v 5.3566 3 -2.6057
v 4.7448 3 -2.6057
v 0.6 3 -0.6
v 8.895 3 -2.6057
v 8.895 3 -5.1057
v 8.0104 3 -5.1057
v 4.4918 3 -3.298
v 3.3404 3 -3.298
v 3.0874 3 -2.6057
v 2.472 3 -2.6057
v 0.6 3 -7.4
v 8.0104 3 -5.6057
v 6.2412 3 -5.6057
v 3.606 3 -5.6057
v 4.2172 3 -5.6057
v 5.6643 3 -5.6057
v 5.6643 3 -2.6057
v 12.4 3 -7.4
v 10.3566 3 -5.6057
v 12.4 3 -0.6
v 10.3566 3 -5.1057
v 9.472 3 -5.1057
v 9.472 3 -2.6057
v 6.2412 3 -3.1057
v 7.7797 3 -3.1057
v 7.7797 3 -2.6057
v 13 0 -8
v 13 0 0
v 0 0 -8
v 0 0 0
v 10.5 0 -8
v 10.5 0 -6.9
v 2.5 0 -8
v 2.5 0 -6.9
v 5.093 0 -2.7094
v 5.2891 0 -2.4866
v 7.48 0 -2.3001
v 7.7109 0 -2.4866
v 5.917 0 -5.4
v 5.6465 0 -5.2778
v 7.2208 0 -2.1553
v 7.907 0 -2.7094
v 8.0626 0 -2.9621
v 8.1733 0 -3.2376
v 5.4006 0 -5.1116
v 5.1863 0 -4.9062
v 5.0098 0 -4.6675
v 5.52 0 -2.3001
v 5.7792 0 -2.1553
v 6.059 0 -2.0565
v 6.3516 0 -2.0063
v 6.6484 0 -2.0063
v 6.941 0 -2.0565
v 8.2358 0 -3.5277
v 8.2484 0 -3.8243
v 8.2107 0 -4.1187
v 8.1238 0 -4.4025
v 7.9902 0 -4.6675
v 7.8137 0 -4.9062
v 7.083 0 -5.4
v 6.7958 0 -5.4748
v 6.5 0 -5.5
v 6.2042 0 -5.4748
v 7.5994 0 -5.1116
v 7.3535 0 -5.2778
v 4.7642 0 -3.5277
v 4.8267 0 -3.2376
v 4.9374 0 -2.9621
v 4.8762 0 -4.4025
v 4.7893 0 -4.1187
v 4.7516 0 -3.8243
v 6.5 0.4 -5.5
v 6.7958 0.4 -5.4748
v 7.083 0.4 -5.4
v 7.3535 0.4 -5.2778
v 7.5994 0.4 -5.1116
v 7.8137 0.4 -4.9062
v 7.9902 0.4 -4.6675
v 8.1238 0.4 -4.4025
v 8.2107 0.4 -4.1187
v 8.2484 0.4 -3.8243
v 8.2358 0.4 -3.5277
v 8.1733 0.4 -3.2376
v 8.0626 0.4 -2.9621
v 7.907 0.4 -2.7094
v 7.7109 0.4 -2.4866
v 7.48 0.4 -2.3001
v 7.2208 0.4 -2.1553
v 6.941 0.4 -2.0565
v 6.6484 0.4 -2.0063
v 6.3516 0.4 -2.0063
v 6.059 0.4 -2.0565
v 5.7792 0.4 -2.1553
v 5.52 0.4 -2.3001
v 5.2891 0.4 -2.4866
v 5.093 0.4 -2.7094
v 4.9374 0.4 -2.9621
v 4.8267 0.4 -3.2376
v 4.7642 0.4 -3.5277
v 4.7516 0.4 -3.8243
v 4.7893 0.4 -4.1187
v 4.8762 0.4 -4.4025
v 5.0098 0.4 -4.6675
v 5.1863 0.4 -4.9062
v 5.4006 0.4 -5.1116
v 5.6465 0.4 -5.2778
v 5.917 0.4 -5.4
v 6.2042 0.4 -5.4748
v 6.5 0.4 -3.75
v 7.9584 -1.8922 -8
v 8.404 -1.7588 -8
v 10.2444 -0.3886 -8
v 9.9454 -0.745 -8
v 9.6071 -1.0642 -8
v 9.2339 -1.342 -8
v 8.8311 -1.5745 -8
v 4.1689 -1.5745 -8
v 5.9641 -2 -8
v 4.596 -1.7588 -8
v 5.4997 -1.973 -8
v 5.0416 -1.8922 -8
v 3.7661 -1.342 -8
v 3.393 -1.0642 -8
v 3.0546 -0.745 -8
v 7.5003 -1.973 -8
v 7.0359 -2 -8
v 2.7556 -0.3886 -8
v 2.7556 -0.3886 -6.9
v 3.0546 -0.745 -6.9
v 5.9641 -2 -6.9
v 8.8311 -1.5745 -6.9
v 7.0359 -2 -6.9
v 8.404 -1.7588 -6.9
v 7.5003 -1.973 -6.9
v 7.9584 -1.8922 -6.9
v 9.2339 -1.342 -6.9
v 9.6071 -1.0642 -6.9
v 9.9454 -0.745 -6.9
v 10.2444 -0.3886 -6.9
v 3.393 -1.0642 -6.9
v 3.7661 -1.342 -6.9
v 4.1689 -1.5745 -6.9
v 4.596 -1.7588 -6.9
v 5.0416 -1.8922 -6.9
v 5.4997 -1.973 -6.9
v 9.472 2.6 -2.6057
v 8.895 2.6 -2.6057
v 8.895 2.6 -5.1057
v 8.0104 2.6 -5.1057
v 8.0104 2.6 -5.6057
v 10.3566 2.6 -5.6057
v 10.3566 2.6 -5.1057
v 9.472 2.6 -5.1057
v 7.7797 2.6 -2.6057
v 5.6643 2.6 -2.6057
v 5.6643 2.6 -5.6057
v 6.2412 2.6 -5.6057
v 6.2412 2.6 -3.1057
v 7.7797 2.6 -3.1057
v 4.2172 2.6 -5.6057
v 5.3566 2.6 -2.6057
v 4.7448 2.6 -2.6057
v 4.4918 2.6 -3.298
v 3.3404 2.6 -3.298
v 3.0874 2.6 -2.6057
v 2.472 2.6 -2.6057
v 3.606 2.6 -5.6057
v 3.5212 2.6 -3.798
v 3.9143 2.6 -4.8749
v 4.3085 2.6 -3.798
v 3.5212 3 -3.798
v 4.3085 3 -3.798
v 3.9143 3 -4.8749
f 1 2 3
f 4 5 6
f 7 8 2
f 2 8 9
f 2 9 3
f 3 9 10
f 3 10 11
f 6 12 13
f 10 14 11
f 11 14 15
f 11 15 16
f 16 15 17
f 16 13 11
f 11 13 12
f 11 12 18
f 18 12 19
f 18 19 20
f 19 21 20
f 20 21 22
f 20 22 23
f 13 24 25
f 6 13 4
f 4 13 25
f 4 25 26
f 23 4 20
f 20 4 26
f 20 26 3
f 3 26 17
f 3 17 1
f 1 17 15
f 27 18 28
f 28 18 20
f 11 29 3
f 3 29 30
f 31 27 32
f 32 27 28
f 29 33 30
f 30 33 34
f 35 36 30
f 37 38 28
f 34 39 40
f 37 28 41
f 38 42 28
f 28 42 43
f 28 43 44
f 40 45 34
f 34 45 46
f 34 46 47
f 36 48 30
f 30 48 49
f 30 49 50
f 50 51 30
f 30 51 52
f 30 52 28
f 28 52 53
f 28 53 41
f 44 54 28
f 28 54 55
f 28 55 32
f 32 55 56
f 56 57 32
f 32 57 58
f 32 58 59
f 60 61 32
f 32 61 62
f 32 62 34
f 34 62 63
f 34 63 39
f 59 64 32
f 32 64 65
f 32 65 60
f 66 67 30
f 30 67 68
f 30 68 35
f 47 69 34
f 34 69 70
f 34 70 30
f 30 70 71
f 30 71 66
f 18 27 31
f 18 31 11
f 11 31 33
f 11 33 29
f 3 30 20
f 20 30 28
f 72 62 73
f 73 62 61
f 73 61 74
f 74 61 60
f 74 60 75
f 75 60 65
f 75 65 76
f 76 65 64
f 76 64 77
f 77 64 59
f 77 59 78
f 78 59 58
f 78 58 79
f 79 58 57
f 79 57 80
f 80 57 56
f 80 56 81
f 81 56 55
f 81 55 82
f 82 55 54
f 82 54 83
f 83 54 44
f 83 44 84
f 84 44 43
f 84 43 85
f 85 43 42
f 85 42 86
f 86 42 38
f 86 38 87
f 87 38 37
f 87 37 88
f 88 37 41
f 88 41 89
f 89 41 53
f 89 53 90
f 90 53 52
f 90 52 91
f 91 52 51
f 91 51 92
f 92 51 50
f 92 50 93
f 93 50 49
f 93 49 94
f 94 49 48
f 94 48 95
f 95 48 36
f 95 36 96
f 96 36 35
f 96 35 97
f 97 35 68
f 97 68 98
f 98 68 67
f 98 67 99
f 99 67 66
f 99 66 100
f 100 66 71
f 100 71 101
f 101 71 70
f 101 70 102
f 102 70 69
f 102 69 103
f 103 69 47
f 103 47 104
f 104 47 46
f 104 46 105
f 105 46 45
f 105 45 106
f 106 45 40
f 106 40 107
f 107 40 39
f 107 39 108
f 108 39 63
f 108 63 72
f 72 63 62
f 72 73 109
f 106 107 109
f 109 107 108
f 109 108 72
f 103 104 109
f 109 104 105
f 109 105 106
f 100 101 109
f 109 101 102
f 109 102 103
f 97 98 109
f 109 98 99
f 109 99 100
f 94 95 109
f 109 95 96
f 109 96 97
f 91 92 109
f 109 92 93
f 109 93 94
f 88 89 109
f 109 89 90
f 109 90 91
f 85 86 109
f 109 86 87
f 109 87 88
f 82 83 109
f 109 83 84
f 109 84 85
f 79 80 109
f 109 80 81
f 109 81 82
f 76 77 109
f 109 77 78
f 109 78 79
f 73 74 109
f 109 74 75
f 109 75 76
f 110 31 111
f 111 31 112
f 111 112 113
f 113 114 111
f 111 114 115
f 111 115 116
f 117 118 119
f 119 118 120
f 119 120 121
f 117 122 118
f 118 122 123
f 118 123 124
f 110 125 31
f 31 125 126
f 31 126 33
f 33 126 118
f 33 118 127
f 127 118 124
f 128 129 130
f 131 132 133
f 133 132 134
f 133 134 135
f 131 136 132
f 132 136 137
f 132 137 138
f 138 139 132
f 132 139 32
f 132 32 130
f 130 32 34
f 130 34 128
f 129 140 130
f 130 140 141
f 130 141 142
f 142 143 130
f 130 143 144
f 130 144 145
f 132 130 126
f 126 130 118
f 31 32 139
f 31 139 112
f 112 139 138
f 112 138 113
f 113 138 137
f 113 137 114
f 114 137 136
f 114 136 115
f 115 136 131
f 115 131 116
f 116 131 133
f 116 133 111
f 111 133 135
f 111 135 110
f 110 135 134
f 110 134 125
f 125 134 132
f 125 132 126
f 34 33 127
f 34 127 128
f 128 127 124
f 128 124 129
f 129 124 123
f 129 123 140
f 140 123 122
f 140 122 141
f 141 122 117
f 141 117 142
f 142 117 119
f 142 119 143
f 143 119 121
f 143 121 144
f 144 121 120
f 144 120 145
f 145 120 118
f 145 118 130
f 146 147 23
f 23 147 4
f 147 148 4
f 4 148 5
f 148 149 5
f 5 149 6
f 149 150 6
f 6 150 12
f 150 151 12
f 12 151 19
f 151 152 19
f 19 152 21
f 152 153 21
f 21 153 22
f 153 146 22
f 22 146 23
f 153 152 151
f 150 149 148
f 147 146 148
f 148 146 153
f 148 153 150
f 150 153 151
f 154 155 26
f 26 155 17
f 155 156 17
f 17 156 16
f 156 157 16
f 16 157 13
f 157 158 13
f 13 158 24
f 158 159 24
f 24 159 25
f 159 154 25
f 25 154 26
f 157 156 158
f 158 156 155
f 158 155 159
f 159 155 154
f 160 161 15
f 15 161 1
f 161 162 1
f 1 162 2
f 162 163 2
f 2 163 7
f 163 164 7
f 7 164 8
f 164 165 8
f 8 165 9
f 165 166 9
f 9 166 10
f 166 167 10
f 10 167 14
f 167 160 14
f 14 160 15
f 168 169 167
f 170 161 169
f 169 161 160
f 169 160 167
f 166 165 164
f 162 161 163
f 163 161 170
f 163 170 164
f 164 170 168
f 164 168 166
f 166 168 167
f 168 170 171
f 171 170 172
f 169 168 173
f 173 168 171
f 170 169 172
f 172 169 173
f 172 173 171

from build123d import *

# Parameters (mm, degrees)
SKETCH1_W               = 13
SKETCH1_H               = 8
BOSS_EXTRUDE1_DEPTH     = 3
CUT_EXTRUDE1_DEPTH      = 16.556349186
CUT_EXTRUDE1_DEPTH_BACK = 16.556349186
CUT_EXTRUDE2_DEPTH      = 16.556349186
CUT_EXTRUDE2_DEPTH_BACK = 16.556349186
SKETCH4_R               = 1.75
CUT_EXTRUDE3_DEPTH      = 0.4
SKETCH5_W               = 8
SKETCH5_H               = 1.1
BOSS_EXTRUDE2_DEPTH     = 2
FILLET1_R               = 4
CUT_EXTRUDE4_DEPTH      = 0.4


with BuildPart() as part:
    # Sketch1 → Boss-Extrude1 (new body)
    with BuildSketch(Plane(origin=(0, 0, 0), x_dir=(1, 0, 0), z_dir=(0, 1, 0))):
        with Locations((6.5, 4)):
            Rectangle(SKETCH1_W, SKETCH1_H)
    extrude(amount=BOSS_EXTRUDE1_DEPTH)

    # Sketch2 → Cut-Extrude1 (cut, two sides: drawn at the far end of the back side and taken through both)
    with BuildSketch(Plane.XY.offset(-CUT_EXTRUDE1_DEPTH_BACK)):
        Polygon((0, 0), (0.6, 3), (0, 3), align=None)
        Polygon((13, 0), (12.4, 3), (13, 3), align=None)
    extrude(amount=CUT_EXTRUDE1_DEPTH + CUT_EXTRUDE1_DEPTH_BACK, mode=Mode.SUBTRACT)

    # Sketch3 → Cut-Extrude2 (cut, two sides: drawn at the far end of the back side and taken through both)
    with BuildSketch(Plane(origin=(0, 0, 0), x_dir=(0, 0, -1), z_dir=(1, 0, 0)).offset(-CUT_EXTRUDE2_DEPTH_BACK)):
        Polygon((0, 0), (0.6, 3), (0, 3), align=None)
        Polygon((8, 3), (7.4, 3), (8, 0), align=None)
    extrude(amount=CUT_EXTRUDE2_DEPTH + CUT_EXTRUDE2_DEPTH_BACK, mode=Mode.SUBTRACT)

    # Sketch4 → Cut-Extrude3 (cut)
    with BuildSketch(Plane.XZ):
        with Locations(Location((6.50000125, -3.75, 0), (0, 0, 270))):
            Circle(SKETCH4_R)
    extrude(amount=-CUT_EXTRUDE3_DEPTH, mode=Mode.SUBTRACT)

    # Sketch5 → Boss-Extrude2 (add)
    with BuildSketch(Plane.XZ):
        with Locations((6.500011, -7.45)):
            Rectangle(SKETCH5_W, SKETCH5_H)
    extrude(amount=BOSS_EXTRUDE2_DEPTH)

    # Fillet1
    # the kernel refuses this fillet: 4 mm, written as the material it takes off along each edge
    with BuildSketch(Plane(origin=(10.500011, -2, -16.660254038), x_dir=(0, 1, 0), z_dir=(0, 0, 1)), Plane(origin=(2.500011, -2, 1.760254038), x_dir=(0, 1, 0), z_dir=(0, 0, -1))) as fillet1_piece_1:
        with BuildLine():
            CenterArc((4, 3.464101615), FILLET1_R, 180, 60)
            Line((0, 3.464101615), (-0.08, 3.464101615))
            Line((-0.08, 3.464101615), (-0.08, 0))
            Line((-0.08, 0), (0, -0.08))
            ThreePointArc((0, -0.08), (1, -0.08), (1.96, -0.069282032))
            Line((1.96, -0.069282032), (2, 0))
        make_face()
    extrude(amount=18.420508076, mode=Mode.SUBTRACT)

    # Sketch6 → Cut-Extrude4 (cut)
    # profile 1 of 3: a face of its own
    with BuildSketch(Plane(origin=(0, 3, 0), x_dir=(1, 0, 0), z_dir=(0, 1, 0))):
        Polygon((5.356583629, 2.605681315), (4.744804782, 2.605681315), (4.491799975, 3.297989008), (3.340357667, 3.297989008), (3.087352859, 2.605681315), (2.471968244, 2.605681315), (3.605982667, 5.605681315), (4.217160552, 5.605681315), align=None)
        Polygon((4.308506705, 3.797989008), (3.914275936, 4.874912084), (3.52124709, 3.797989008), align=None, mode=Mode.SUBTRACT)
    # profile 2 of 3: a face of its own
    with BuildSketch(Plane(origin=(0, 3, 0), x_dir=(1, 0, 0), z_dir=(0, 1, 0))):
        Polygon((5.664275936, 2.605681315), (5.664275936, 5.605681315), (6.241199013, 5.605681315), (6.241199013, 3.105681315), (7.779660552, 3.105681315), (7.779660552, 2.605681315), align=None)
    # profile 3 of 3: a face of its own
    with BuildSketch(Plane(origin=(0, 3, 0), x_dir=(1, 0, 0), z_dir=(0, 1, 0))):
        Polygon((8.895045167, 2.605681315), (8.895045167, 5.105681315), (8.010429782, 5.105681315), (8.010429782, 5.605681315), (10.356583629, 5.605681315), (10.356583629, 5.105681315), (9.471968244, 5.105681315), (9.471968244, 2.605681315), align=None)
    extrude(amount=-CUT_EXTRUDE4_DEPTH, mode=Mode.SUBTRACT)


solid = part.part
